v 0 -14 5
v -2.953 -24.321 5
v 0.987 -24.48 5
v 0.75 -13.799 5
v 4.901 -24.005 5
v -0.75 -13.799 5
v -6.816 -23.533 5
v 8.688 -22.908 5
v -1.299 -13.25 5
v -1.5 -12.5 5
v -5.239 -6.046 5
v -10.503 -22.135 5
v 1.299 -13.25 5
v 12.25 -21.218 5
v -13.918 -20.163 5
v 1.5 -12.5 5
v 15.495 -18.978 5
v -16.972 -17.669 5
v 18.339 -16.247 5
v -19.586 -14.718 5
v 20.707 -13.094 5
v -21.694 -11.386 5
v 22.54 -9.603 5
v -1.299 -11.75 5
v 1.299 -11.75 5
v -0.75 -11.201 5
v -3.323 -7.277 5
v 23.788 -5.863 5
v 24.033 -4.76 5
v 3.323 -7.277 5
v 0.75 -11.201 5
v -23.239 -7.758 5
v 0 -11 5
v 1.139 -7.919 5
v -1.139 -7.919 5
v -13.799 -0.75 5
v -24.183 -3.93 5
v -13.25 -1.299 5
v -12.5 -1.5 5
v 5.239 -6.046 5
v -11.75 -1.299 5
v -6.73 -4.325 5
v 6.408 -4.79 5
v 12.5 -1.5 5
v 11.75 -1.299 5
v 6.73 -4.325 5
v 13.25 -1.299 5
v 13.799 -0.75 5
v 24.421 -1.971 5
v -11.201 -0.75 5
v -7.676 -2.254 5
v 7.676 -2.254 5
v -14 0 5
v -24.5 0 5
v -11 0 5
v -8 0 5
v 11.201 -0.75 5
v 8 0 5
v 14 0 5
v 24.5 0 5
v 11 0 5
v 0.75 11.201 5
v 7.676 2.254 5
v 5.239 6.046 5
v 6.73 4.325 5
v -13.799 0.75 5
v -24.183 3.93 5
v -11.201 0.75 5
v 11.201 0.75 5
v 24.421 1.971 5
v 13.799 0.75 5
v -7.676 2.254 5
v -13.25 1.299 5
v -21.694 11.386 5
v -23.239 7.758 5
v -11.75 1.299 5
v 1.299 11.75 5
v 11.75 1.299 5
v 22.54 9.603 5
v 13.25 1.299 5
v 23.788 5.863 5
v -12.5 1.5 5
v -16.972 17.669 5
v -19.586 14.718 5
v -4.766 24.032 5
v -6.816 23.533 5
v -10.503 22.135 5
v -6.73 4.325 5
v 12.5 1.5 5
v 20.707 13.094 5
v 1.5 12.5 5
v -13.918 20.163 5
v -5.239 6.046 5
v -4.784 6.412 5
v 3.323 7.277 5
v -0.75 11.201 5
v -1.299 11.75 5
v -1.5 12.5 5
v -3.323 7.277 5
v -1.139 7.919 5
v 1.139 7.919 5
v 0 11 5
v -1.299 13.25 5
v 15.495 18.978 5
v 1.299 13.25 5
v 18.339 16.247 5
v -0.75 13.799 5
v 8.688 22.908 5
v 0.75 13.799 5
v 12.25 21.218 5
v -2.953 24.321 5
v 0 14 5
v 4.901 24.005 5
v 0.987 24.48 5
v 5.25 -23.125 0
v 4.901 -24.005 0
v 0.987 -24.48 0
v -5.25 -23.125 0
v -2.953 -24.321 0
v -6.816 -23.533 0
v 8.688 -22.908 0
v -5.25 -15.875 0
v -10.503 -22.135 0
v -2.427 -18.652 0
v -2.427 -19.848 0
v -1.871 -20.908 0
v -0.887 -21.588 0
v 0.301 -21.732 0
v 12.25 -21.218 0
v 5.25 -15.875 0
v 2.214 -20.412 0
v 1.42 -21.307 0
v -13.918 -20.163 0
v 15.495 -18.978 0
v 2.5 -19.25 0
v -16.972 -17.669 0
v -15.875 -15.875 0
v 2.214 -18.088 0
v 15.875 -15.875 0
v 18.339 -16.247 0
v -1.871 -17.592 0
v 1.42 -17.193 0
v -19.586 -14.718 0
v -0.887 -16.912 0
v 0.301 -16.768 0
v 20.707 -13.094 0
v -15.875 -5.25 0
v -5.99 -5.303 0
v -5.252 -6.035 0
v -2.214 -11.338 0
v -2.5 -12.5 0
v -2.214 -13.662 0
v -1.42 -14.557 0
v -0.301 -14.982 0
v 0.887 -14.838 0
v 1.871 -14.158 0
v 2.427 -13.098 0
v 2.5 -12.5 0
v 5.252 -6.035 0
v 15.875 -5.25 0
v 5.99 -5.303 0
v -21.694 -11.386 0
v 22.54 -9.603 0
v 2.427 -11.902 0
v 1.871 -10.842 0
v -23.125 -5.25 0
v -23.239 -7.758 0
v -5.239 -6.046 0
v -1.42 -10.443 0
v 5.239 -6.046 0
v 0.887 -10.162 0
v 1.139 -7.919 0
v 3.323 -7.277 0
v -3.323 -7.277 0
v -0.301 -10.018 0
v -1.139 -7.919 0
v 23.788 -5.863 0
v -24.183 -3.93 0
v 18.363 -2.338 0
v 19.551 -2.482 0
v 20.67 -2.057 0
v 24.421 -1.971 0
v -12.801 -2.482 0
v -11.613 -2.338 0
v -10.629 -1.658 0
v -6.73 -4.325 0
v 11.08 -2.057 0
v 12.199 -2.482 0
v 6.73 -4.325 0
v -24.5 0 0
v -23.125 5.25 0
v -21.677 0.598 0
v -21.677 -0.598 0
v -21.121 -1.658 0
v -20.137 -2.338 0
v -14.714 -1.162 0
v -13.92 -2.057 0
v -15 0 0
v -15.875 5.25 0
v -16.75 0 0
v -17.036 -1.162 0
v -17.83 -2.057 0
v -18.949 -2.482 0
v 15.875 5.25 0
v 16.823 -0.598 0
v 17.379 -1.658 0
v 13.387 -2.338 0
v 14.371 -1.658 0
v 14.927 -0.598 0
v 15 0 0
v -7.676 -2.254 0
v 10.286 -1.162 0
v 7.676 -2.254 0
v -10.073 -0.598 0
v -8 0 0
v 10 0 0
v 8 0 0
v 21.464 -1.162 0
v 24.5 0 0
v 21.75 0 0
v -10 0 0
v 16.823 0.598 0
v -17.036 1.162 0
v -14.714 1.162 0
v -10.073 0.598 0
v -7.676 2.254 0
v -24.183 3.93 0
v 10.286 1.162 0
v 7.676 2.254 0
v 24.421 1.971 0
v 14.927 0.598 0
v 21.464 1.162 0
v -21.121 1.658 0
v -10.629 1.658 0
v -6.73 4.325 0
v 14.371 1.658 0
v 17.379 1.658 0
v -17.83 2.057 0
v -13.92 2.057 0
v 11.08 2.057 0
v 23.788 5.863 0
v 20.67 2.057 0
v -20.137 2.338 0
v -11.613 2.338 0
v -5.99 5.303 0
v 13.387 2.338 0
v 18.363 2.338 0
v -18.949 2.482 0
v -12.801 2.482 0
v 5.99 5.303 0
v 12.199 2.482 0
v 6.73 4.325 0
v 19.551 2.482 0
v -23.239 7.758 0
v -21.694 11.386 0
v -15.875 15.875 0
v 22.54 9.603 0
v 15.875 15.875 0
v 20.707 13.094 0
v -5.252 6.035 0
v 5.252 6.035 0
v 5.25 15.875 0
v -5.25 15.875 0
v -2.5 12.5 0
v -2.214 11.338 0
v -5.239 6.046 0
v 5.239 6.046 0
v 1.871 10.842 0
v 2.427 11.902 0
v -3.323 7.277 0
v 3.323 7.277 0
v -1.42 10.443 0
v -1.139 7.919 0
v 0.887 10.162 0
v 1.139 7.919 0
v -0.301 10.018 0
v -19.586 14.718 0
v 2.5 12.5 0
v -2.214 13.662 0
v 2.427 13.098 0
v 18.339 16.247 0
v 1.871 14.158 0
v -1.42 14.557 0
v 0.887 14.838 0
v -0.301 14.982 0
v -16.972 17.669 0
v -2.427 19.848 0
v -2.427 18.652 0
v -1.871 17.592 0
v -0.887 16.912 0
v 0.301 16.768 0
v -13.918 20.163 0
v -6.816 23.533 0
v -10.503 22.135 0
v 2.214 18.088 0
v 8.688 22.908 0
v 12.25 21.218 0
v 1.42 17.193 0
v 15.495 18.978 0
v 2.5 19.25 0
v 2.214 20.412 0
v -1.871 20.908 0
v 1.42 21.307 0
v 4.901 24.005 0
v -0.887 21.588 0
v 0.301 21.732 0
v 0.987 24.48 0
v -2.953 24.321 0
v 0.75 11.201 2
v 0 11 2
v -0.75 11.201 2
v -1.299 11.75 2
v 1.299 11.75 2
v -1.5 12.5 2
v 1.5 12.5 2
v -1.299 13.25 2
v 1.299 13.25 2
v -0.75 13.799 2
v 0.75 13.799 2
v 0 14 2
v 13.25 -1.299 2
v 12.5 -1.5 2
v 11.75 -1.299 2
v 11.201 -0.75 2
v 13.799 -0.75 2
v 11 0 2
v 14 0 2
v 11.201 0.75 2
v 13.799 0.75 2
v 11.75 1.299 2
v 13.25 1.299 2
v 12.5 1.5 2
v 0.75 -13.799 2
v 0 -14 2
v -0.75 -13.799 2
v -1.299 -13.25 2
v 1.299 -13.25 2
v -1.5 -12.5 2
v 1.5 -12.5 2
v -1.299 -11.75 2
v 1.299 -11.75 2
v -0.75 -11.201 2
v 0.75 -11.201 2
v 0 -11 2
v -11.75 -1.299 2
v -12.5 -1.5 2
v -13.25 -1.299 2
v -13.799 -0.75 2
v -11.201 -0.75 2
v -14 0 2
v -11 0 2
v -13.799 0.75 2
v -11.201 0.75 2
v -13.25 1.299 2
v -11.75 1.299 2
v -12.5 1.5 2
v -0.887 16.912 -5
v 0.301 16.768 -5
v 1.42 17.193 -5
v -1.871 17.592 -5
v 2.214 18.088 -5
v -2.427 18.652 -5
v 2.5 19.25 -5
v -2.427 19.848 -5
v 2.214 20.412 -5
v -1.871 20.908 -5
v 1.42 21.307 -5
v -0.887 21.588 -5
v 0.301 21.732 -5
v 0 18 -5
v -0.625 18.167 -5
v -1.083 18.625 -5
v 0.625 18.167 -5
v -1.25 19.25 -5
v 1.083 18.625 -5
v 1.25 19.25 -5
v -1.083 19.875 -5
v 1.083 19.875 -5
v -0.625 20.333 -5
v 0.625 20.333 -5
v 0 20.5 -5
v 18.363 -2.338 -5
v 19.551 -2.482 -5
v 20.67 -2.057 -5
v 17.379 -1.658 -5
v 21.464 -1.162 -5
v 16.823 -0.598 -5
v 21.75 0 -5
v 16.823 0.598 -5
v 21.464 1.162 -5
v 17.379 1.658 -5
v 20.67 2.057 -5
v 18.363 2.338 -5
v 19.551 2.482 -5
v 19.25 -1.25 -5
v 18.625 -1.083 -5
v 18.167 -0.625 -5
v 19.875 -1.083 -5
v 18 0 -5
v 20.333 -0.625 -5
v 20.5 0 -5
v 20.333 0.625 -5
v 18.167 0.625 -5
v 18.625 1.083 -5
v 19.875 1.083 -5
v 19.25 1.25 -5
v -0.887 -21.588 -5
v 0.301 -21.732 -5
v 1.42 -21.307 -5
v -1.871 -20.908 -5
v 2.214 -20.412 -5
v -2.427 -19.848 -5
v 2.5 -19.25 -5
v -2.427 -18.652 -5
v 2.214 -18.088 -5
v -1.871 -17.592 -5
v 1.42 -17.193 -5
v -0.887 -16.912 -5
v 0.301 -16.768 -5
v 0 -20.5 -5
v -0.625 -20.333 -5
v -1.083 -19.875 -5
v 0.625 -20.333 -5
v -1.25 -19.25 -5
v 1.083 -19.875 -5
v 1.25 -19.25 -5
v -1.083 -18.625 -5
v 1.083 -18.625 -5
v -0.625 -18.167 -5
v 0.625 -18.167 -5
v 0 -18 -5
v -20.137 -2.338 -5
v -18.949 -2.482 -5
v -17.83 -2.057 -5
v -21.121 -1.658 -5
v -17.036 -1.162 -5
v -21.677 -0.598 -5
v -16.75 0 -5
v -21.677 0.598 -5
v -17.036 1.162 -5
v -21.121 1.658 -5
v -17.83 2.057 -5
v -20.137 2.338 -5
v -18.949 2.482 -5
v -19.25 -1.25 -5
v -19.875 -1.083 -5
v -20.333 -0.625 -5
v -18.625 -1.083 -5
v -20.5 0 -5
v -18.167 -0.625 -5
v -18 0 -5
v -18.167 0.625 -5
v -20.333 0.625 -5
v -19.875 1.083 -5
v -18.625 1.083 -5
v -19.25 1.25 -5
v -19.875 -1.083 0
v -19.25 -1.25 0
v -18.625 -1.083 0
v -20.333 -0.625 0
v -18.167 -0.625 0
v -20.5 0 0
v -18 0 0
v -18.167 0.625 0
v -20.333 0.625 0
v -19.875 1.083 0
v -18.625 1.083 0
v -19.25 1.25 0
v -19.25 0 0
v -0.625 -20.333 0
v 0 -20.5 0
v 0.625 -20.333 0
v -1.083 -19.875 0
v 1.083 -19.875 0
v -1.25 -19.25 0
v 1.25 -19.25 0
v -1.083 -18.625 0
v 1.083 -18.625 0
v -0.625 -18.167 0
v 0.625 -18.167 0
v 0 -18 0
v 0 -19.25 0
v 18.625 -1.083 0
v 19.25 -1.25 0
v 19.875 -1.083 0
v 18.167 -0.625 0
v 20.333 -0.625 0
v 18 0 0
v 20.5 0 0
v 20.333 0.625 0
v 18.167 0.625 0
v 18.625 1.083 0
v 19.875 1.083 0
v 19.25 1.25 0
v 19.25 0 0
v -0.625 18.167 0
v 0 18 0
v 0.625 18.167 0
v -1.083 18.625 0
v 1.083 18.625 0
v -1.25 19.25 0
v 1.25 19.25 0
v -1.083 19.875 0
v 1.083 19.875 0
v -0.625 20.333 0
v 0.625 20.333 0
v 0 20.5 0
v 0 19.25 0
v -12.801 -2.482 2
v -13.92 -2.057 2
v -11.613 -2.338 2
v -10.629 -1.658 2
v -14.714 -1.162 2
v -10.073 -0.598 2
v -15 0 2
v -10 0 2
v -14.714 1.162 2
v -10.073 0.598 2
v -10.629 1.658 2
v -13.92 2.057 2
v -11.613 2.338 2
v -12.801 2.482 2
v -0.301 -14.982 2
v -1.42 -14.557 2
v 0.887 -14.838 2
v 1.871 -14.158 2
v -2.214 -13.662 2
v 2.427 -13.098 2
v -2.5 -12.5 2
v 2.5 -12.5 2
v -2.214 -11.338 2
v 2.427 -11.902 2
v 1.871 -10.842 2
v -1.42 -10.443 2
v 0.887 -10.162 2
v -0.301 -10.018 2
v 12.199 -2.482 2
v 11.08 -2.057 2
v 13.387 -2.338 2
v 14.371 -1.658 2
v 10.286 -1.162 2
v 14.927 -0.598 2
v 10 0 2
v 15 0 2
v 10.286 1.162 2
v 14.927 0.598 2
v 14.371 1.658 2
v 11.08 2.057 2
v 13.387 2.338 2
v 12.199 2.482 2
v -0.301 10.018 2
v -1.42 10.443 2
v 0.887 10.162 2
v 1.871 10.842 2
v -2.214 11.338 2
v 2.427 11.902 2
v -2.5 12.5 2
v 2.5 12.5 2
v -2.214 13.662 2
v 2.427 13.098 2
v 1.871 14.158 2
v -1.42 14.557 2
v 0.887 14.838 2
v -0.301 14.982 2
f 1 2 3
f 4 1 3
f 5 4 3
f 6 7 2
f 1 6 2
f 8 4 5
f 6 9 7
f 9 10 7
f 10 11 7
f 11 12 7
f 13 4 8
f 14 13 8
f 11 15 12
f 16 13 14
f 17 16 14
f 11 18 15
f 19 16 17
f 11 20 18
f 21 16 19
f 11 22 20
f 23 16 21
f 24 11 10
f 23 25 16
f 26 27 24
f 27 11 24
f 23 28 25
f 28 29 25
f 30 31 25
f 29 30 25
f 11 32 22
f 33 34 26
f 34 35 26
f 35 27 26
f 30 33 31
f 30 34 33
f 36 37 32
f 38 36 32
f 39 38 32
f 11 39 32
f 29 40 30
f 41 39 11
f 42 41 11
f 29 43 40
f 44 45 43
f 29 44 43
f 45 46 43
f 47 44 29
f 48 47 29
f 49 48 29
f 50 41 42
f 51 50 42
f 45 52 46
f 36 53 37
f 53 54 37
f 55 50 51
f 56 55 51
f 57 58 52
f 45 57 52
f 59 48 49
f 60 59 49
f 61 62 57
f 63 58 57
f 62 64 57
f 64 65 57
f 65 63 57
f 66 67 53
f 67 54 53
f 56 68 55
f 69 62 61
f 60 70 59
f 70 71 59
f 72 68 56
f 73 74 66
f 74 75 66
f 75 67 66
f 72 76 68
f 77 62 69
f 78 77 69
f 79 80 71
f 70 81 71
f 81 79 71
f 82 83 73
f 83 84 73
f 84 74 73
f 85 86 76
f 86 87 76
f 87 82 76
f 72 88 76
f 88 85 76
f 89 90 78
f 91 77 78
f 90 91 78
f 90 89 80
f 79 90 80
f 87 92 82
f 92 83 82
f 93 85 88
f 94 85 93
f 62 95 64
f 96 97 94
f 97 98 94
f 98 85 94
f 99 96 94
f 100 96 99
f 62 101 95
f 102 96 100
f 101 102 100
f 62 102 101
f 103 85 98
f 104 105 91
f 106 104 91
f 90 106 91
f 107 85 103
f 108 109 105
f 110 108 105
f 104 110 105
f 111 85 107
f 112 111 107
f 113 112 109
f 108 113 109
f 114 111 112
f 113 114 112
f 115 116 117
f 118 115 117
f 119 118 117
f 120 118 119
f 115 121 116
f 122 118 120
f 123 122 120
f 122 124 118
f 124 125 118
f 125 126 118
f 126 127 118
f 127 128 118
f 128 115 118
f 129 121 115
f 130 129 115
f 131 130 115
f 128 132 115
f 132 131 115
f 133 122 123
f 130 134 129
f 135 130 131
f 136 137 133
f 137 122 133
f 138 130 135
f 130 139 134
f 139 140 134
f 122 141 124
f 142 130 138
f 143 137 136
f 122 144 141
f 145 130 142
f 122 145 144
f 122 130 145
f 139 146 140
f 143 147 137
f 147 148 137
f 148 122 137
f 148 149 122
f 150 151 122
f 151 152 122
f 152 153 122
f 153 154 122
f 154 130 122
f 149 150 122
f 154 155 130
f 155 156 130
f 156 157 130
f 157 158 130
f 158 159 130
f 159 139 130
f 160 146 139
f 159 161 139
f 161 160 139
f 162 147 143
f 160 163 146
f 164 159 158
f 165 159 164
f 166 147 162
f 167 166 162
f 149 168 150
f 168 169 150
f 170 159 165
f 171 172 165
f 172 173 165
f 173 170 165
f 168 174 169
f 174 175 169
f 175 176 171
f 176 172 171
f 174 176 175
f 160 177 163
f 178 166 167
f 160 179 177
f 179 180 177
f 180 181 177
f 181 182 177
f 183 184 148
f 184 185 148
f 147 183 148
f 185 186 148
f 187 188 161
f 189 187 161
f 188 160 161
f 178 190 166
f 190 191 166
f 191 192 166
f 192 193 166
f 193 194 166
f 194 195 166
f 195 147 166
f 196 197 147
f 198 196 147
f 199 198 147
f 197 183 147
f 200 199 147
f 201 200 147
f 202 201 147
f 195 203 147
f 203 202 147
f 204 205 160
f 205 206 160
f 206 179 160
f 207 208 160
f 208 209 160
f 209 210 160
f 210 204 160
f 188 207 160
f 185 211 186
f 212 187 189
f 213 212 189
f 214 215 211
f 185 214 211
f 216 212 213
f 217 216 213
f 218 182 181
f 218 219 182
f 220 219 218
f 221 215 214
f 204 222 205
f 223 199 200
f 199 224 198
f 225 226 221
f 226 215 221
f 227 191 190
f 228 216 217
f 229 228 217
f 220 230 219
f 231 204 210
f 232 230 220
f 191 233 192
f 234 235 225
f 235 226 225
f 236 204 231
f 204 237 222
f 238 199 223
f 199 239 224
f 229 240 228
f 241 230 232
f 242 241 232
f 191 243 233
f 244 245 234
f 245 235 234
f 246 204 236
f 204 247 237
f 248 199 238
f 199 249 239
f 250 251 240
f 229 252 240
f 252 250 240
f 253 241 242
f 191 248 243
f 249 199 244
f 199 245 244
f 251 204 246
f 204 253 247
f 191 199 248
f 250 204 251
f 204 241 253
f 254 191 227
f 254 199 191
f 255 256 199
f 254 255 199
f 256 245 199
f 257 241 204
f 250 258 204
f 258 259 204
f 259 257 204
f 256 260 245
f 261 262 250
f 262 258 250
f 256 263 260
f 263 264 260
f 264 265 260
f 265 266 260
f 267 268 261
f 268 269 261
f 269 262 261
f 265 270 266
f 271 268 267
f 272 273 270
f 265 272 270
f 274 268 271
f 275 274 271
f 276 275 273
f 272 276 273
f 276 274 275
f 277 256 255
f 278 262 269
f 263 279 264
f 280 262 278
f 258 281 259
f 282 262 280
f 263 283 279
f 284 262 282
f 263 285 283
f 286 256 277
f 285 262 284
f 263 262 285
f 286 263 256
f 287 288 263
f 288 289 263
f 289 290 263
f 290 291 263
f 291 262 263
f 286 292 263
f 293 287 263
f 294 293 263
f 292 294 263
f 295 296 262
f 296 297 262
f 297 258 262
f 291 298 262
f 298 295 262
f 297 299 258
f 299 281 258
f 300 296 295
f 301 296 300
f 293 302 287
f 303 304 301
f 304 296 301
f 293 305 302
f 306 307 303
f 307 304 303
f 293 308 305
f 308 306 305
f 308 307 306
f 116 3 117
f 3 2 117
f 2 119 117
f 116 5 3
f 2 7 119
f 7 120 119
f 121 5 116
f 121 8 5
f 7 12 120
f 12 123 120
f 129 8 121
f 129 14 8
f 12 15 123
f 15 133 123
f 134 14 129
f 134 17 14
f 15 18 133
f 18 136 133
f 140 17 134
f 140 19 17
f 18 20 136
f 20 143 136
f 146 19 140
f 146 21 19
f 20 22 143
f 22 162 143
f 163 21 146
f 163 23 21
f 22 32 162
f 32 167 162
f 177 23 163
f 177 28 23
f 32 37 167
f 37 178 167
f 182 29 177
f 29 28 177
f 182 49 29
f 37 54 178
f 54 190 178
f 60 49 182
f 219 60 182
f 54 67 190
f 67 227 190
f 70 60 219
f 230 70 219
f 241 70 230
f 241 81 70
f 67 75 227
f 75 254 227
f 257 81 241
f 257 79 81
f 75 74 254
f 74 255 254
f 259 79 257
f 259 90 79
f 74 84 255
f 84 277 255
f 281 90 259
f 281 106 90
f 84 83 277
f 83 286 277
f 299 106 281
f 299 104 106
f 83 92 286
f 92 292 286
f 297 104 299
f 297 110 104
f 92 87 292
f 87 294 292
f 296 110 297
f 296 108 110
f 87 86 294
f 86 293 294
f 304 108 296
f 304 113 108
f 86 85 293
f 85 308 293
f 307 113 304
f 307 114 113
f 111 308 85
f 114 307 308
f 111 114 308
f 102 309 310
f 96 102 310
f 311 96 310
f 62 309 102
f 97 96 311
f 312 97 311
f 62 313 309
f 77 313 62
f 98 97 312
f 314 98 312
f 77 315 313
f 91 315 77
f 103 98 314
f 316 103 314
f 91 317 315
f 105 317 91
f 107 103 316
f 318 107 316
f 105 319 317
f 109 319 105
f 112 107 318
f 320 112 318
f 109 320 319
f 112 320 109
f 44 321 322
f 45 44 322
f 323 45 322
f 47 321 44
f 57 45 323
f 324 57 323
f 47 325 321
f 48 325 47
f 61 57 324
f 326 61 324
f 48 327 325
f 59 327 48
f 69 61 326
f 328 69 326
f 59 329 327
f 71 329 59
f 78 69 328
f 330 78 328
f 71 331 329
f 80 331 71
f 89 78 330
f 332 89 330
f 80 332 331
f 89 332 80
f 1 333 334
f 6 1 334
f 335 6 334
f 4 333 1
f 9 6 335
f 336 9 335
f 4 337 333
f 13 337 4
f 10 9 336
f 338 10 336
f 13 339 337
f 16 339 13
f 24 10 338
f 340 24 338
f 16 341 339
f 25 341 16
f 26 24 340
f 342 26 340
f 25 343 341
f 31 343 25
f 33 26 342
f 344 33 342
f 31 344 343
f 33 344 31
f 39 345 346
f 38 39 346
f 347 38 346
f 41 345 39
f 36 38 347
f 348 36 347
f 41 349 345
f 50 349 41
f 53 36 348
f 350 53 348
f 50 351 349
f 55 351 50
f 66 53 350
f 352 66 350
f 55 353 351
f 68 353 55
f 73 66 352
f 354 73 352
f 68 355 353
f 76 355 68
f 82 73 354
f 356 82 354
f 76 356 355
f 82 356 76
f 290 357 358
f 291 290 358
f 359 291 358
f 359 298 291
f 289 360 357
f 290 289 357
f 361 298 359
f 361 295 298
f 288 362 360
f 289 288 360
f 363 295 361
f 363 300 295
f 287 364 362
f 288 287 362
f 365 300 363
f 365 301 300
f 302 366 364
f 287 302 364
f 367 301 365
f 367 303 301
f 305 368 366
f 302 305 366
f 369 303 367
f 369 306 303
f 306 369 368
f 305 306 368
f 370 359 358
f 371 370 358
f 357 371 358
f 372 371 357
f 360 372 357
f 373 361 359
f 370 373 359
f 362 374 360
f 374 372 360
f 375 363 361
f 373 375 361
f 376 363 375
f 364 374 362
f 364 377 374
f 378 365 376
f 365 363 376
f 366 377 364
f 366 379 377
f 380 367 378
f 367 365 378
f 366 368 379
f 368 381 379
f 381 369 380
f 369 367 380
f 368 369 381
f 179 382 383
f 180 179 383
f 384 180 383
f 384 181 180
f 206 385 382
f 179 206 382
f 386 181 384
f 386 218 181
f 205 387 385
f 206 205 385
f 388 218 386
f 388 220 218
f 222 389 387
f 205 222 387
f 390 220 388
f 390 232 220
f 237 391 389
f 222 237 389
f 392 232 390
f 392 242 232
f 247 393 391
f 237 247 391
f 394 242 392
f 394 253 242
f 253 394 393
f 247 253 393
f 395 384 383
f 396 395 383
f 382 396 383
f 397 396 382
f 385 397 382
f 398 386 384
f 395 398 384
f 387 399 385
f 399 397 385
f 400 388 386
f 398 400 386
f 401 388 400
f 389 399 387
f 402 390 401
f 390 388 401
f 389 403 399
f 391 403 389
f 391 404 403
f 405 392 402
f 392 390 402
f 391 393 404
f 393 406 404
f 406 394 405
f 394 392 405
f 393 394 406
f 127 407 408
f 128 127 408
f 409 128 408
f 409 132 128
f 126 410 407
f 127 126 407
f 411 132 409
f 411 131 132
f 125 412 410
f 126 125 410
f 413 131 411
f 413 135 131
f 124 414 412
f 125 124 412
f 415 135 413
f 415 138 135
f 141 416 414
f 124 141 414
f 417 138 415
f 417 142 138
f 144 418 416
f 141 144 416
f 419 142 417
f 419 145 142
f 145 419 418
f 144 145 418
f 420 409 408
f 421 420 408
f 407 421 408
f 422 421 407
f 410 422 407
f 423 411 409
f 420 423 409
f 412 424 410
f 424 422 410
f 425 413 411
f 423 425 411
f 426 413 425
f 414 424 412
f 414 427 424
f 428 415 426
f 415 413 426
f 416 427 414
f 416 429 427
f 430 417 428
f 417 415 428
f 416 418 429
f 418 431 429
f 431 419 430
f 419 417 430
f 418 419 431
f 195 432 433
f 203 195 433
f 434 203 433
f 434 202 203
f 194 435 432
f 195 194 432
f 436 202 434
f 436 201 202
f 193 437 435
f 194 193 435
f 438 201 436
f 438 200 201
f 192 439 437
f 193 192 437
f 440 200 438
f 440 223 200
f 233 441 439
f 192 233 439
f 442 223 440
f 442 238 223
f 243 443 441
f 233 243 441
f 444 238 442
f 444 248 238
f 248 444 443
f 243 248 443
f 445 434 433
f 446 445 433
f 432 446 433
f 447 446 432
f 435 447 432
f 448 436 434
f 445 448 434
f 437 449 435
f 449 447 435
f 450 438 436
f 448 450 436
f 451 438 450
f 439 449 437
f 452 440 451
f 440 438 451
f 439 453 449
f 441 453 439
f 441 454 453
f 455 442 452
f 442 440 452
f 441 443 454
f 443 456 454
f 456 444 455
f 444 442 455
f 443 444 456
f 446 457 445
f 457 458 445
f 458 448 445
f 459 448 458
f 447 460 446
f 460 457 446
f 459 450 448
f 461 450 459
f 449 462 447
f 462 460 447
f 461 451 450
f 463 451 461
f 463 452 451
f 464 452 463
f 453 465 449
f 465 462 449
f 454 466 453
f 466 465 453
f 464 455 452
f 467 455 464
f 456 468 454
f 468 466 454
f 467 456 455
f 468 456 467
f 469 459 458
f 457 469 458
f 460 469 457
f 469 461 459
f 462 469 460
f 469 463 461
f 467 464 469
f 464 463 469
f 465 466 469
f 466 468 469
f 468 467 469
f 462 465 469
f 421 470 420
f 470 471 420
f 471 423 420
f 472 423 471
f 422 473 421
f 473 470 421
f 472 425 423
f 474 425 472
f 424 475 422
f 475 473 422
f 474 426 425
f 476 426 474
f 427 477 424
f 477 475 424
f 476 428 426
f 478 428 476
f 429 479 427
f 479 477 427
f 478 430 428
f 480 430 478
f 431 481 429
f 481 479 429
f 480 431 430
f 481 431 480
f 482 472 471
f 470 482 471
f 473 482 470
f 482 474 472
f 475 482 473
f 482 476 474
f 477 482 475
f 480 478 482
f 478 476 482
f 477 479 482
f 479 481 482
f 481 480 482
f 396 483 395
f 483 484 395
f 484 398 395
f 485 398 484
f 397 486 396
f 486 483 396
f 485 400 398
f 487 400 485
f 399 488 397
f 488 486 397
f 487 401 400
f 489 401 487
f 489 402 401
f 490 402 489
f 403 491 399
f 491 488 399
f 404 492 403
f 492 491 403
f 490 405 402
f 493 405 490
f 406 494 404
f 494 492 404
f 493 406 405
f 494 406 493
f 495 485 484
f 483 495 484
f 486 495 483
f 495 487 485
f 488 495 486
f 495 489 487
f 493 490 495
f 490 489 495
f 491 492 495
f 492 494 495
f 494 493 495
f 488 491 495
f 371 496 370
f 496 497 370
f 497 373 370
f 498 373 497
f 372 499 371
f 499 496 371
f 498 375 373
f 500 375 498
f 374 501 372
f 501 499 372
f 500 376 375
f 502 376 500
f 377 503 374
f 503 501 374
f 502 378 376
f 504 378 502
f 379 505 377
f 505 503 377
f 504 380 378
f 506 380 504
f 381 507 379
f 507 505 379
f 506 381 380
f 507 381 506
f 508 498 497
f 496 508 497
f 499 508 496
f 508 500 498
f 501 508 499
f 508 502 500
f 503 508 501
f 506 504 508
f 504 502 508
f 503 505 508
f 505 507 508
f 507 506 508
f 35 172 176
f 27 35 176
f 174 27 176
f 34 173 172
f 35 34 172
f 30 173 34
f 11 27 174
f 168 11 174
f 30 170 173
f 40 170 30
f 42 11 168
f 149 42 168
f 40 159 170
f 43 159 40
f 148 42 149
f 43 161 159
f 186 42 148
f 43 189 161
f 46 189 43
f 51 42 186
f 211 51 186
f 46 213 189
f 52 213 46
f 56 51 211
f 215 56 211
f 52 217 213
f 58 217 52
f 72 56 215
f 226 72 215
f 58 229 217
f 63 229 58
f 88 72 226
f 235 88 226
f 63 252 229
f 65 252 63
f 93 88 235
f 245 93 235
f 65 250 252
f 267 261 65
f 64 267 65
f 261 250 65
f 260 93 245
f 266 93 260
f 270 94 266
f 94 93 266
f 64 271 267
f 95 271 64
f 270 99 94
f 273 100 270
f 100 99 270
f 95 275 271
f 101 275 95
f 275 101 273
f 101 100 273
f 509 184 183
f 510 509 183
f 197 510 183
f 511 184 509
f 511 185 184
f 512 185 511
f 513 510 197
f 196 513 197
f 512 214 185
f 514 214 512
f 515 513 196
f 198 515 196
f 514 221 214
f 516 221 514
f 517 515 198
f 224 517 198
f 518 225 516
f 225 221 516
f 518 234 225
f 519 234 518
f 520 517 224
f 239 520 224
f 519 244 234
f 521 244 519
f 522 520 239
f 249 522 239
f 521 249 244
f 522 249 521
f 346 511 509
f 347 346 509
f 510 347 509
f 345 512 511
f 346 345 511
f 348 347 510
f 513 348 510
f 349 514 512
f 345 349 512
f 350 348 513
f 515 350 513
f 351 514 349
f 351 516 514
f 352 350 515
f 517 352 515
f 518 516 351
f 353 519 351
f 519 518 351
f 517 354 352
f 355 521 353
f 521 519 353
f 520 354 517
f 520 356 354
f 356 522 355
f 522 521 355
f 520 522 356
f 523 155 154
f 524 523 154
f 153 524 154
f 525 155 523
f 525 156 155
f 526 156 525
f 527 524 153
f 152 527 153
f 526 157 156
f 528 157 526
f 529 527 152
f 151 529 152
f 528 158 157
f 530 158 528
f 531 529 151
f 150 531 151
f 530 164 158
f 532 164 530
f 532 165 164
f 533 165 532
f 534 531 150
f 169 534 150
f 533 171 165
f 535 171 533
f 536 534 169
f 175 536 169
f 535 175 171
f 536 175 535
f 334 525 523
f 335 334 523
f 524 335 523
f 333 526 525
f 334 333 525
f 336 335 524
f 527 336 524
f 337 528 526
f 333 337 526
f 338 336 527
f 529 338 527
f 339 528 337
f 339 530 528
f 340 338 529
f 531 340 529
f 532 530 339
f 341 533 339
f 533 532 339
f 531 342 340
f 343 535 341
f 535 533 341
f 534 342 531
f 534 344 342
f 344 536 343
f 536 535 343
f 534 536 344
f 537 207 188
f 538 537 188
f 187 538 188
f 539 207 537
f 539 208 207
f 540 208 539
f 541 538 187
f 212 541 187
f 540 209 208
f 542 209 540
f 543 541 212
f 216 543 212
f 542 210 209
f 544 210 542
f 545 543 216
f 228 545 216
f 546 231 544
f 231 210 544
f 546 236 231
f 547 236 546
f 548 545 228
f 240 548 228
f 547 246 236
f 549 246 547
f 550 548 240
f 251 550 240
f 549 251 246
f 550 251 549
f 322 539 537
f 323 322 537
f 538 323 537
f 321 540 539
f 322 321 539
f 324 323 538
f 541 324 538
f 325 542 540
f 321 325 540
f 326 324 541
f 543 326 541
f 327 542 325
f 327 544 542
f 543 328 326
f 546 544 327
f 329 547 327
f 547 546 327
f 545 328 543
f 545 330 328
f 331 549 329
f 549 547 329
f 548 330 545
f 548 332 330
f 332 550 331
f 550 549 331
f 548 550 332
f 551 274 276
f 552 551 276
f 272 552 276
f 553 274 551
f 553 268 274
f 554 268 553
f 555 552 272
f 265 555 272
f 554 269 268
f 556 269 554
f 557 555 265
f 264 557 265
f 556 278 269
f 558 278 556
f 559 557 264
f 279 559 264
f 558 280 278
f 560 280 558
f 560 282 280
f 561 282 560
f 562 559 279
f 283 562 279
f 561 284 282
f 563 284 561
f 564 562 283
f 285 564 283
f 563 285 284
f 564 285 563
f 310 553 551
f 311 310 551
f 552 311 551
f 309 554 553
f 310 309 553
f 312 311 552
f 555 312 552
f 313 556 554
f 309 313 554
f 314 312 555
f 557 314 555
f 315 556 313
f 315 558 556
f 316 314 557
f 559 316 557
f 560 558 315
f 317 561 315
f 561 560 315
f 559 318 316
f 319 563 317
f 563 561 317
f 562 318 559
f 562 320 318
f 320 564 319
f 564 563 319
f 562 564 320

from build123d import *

# Parameters (mm, degrees)
SKETCH_1_R          = 24.5
SKETCH_1_R_2        = 1.5
EXTRUDE_1_DEPTH     = 5
SKETCH_2_R          = 2.5
EXTRUDE_2_DEPTH     = 5
SKETCH_4_R          = 1.25
CUT_EXTRUDE_1_DEPTH = 5
SKETCH_5_R          = 8
CUT_EXTRUDE_2_DEPTH = 5
SKETCH_6_R          = 2.5
CUT_EXTRUDE_3_DEPTH = 2


with BuildPart() as part:
    # 草图1 → 凸台-拉伸1 (new body)
    with BuildSketch(Plane.XY):
        Circle(SKETCH_1_R)
        with Locations((0, 12.5)):
            Circle(SKETCH_1_R_2, mode=Mode.SUBTRACT)
        with Locations((12.5, 0)):
            Circle(SKETCH_1_R_2, mode=Mode.SUBTRACT)
        with Locations((0, -12.5)):
            Circle(SKETCH_1_R_2, mode=Mode.SUBTRACT)
        with Locations((-12.5, 0)):
            Circle(SKETCH_1_R_2, mode=Mode.SUBTRACT)
    extrude(amount=EXTRUDE_1_DEPTH)

    # 草图2 → 凸台-拉伸2 (add)
    with BuildSketch(Plane.XY):
        with Locations((0, 19.25)):
            Circle(SKETCH_2_R)
        with Locations((19.25, 0)):
            Circle(SKETCH_2_R)
        with Locations((0, -19.25)):
            Circle(SKETCH_2_R)
        with Locations((-19.25, 0)):
            Circle(SKETCH_2_R)
    extrude(amount=-EXTRUDE_2_DEPTH)

    # 草图4 → 切除-拉伸1 (cut)
    with BuildSketch(Plane.XY):
        with Locations((0, 19.25)):
            Circle(SKETCH_4_R)
        with Locations((19.25, 0)):
            Circle(SKETCH_4_R)
        with Locations((0, -19.25)):
            Circle(SKETCH_4_R)
        with Locations((-19.25, 0)):
            Circle(SKETCH_4_R)
    extrude(amount=-CUT_EXTRUDE_1_DEPTH, mode=Mode.SUBTRACT)

    # 草图5 → 切除-拉伸2 (cut)
    with BuildSketch(Plane.XY):
        Circle(SKETCH_5_R)
    extrude(amount=CUT_EXTRUDE_2_DEPTH, mode=Mode.SUBTRACT)

    # 草图6 → 切除-拉伸3 (cut)
    with BuildSketch(Plane.XY):
        with Locations((0, 12.5)):
            Circle(SKETCH_6_R)
        with Locations((12.5, 0)):
            Circle(SKETCH_6_R)
        with Locations((0, -12.5)):
            Circle(SKETCH_6_R)
        with Locations((-12.5, 0)):
            Circle(SKETCH_6_R)
    extrude(amount=CUT_EXTRUDE_3_DEPTH, mode=Mode.SUBTRACT)


solid = part.part
